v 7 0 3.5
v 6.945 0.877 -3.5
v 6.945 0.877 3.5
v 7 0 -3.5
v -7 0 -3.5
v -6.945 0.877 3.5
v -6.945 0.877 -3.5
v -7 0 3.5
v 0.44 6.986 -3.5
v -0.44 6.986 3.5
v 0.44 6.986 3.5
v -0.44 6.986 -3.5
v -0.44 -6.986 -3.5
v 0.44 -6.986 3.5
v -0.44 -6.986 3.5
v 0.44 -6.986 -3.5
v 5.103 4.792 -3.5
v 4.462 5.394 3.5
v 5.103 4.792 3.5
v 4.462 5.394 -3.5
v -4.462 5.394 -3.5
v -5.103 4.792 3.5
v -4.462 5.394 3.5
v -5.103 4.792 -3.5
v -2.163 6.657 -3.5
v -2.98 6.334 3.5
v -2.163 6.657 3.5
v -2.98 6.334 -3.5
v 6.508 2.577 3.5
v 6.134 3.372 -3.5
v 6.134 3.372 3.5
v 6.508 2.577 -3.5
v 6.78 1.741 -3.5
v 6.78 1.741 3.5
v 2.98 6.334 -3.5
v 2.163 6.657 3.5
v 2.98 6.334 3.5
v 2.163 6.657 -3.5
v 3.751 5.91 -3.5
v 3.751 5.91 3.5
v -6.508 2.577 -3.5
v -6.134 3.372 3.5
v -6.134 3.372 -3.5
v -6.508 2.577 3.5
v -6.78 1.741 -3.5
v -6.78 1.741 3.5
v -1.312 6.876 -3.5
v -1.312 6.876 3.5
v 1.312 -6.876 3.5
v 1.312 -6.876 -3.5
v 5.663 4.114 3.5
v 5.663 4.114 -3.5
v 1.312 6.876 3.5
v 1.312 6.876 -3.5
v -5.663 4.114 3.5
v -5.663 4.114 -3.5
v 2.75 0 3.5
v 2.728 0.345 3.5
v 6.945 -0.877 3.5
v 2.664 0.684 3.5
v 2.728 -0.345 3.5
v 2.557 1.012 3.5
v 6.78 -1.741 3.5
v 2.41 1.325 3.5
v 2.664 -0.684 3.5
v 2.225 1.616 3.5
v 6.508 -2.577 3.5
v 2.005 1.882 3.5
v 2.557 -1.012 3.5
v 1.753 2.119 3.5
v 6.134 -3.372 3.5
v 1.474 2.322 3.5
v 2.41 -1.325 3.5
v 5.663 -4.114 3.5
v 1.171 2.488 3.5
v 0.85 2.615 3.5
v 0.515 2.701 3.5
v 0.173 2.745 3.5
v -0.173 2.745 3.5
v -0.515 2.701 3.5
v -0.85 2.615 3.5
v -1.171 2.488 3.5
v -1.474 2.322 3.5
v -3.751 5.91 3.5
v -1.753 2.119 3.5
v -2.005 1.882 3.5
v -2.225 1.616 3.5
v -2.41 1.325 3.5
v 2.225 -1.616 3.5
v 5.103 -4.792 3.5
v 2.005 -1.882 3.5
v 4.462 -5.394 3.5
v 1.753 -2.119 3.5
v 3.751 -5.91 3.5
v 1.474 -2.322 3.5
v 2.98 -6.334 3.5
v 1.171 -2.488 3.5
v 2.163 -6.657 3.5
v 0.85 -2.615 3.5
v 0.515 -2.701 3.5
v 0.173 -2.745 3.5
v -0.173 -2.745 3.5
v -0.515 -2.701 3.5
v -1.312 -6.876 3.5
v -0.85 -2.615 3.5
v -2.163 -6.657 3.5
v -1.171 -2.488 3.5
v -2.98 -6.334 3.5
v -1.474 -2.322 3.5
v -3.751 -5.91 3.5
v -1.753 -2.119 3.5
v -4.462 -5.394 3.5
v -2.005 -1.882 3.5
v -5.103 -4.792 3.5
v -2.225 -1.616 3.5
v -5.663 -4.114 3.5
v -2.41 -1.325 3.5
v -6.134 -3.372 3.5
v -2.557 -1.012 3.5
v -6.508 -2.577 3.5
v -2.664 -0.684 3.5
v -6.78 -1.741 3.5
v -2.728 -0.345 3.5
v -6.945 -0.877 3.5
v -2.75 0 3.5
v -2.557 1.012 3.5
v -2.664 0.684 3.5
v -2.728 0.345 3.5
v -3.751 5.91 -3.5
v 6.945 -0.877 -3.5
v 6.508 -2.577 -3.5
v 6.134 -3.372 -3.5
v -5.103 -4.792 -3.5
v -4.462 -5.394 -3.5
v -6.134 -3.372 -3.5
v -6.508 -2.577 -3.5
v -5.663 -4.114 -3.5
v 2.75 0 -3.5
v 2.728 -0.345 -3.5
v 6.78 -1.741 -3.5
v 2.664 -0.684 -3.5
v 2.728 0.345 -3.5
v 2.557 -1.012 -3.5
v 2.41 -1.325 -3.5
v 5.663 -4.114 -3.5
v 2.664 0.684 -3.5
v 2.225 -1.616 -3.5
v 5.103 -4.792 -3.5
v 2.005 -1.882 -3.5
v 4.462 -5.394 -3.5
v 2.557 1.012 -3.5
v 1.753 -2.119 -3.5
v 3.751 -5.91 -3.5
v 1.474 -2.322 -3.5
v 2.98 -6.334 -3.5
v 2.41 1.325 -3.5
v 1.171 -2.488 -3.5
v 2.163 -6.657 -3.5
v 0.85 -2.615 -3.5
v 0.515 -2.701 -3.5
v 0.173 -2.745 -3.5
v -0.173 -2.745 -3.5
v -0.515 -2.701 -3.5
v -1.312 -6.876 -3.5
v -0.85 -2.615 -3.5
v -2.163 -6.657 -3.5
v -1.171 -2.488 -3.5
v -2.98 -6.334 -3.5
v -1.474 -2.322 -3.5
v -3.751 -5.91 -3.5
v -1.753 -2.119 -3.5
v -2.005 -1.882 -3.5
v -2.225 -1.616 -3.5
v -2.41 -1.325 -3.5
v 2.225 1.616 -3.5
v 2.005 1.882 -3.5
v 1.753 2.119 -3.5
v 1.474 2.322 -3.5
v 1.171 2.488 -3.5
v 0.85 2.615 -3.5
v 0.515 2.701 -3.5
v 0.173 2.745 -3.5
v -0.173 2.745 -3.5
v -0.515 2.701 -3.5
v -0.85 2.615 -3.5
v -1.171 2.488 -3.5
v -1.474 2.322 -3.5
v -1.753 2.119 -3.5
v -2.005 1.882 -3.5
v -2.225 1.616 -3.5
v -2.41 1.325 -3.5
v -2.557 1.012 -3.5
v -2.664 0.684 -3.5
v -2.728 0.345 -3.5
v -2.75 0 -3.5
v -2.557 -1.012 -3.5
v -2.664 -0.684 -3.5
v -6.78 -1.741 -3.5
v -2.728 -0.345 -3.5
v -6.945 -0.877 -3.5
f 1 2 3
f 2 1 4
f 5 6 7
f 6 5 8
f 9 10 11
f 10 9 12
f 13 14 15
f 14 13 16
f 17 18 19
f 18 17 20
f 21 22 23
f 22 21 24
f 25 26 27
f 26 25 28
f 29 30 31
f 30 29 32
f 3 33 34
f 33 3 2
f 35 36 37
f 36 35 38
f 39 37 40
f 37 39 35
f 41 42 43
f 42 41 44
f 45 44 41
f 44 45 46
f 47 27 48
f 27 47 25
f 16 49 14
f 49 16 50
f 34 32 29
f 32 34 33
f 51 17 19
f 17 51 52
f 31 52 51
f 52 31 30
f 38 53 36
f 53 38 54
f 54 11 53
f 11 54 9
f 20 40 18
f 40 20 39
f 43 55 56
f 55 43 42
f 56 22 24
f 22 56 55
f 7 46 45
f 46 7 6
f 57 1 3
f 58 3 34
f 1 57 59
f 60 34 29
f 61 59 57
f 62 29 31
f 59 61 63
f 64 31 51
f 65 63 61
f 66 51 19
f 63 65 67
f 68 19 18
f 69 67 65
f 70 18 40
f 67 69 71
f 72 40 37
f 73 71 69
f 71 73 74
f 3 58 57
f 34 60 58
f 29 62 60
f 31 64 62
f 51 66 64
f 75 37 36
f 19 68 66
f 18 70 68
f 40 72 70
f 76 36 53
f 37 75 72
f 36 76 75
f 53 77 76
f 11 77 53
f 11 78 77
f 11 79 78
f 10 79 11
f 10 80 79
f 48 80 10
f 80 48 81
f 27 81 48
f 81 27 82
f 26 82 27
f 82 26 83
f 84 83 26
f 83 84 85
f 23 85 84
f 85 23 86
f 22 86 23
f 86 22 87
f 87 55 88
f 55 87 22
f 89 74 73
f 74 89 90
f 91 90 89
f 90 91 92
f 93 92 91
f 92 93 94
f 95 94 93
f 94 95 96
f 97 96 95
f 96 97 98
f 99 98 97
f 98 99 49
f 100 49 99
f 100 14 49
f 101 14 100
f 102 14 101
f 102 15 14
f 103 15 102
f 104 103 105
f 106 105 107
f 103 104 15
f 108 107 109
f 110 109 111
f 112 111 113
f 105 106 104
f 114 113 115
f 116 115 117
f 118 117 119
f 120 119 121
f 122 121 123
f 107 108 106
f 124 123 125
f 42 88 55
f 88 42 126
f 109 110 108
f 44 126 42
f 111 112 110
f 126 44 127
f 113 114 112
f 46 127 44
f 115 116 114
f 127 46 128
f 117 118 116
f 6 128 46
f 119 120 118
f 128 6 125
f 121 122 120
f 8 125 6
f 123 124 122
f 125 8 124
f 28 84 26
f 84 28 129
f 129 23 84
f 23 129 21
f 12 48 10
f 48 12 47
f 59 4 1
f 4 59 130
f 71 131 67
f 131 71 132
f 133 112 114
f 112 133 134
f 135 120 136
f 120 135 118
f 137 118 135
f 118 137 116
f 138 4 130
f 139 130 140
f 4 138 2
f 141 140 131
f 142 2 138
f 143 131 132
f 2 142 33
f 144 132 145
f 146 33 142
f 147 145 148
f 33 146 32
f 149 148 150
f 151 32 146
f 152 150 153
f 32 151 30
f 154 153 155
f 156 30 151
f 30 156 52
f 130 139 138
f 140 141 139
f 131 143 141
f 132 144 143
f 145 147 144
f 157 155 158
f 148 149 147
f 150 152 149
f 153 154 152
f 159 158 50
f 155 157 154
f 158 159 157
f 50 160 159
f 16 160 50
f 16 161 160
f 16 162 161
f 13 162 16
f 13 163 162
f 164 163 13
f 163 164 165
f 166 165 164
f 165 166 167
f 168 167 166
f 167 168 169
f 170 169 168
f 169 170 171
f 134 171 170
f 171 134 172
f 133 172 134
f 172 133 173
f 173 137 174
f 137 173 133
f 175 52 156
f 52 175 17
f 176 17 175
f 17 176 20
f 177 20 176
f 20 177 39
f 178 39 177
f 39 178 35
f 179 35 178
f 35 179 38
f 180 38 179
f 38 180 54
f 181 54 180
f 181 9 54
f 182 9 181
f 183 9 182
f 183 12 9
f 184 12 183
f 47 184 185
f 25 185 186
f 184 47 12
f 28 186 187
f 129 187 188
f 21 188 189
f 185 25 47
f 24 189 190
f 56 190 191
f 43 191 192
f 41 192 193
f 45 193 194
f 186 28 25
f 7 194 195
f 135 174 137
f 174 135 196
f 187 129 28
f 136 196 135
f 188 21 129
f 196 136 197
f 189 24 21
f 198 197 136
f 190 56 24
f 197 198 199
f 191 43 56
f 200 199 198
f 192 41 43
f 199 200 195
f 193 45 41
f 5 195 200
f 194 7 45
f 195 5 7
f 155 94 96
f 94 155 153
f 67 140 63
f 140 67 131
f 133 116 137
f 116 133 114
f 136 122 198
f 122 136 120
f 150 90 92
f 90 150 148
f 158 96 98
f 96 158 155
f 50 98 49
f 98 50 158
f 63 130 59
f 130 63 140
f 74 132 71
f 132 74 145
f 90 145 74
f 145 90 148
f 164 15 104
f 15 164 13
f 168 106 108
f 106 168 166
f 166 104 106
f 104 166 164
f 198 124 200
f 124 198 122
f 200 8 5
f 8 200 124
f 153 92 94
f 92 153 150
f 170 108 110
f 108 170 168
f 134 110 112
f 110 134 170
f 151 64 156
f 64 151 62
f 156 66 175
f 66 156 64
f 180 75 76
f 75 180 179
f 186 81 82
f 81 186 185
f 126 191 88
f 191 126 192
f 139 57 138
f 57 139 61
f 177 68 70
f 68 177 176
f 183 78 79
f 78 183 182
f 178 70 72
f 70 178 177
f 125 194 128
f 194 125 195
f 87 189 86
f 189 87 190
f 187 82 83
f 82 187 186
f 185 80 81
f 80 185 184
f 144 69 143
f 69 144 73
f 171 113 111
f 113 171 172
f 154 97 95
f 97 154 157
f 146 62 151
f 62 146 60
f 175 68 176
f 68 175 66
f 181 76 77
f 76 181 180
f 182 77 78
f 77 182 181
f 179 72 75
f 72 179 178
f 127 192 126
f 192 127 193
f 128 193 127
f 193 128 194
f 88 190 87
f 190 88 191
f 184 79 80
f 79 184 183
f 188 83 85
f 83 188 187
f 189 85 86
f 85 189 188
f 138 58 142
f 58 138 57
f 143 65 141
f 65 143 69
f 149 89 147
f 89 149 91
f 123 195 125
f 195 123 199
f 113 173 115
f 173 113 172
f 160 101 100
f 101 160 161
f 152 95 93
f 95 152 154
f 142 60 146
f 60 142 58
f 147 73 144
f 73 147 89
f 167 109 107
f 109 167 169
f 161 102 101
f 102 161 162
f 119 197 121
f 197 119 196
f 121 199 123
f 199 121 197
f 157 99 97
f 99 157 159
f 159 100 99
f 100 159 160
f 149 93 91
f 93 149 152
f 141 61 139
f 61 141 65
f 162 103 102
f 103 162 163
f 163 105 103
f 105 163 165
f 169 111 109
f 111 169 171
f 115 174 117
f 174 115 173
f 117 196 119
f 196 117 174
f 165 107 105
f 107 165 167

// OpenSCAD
$fn = 50;


difference() {
	union() {
		translate(v = [0, 0, -3.5000000000]) {
			cylinder(h = 7, r = 7.0000000000);
		}
	}
	union() {
		translate(v = [0, 0, -100.0000000000]) {
			cylinder(h = 200, r = 2.7500000000);
		}
	}
}
